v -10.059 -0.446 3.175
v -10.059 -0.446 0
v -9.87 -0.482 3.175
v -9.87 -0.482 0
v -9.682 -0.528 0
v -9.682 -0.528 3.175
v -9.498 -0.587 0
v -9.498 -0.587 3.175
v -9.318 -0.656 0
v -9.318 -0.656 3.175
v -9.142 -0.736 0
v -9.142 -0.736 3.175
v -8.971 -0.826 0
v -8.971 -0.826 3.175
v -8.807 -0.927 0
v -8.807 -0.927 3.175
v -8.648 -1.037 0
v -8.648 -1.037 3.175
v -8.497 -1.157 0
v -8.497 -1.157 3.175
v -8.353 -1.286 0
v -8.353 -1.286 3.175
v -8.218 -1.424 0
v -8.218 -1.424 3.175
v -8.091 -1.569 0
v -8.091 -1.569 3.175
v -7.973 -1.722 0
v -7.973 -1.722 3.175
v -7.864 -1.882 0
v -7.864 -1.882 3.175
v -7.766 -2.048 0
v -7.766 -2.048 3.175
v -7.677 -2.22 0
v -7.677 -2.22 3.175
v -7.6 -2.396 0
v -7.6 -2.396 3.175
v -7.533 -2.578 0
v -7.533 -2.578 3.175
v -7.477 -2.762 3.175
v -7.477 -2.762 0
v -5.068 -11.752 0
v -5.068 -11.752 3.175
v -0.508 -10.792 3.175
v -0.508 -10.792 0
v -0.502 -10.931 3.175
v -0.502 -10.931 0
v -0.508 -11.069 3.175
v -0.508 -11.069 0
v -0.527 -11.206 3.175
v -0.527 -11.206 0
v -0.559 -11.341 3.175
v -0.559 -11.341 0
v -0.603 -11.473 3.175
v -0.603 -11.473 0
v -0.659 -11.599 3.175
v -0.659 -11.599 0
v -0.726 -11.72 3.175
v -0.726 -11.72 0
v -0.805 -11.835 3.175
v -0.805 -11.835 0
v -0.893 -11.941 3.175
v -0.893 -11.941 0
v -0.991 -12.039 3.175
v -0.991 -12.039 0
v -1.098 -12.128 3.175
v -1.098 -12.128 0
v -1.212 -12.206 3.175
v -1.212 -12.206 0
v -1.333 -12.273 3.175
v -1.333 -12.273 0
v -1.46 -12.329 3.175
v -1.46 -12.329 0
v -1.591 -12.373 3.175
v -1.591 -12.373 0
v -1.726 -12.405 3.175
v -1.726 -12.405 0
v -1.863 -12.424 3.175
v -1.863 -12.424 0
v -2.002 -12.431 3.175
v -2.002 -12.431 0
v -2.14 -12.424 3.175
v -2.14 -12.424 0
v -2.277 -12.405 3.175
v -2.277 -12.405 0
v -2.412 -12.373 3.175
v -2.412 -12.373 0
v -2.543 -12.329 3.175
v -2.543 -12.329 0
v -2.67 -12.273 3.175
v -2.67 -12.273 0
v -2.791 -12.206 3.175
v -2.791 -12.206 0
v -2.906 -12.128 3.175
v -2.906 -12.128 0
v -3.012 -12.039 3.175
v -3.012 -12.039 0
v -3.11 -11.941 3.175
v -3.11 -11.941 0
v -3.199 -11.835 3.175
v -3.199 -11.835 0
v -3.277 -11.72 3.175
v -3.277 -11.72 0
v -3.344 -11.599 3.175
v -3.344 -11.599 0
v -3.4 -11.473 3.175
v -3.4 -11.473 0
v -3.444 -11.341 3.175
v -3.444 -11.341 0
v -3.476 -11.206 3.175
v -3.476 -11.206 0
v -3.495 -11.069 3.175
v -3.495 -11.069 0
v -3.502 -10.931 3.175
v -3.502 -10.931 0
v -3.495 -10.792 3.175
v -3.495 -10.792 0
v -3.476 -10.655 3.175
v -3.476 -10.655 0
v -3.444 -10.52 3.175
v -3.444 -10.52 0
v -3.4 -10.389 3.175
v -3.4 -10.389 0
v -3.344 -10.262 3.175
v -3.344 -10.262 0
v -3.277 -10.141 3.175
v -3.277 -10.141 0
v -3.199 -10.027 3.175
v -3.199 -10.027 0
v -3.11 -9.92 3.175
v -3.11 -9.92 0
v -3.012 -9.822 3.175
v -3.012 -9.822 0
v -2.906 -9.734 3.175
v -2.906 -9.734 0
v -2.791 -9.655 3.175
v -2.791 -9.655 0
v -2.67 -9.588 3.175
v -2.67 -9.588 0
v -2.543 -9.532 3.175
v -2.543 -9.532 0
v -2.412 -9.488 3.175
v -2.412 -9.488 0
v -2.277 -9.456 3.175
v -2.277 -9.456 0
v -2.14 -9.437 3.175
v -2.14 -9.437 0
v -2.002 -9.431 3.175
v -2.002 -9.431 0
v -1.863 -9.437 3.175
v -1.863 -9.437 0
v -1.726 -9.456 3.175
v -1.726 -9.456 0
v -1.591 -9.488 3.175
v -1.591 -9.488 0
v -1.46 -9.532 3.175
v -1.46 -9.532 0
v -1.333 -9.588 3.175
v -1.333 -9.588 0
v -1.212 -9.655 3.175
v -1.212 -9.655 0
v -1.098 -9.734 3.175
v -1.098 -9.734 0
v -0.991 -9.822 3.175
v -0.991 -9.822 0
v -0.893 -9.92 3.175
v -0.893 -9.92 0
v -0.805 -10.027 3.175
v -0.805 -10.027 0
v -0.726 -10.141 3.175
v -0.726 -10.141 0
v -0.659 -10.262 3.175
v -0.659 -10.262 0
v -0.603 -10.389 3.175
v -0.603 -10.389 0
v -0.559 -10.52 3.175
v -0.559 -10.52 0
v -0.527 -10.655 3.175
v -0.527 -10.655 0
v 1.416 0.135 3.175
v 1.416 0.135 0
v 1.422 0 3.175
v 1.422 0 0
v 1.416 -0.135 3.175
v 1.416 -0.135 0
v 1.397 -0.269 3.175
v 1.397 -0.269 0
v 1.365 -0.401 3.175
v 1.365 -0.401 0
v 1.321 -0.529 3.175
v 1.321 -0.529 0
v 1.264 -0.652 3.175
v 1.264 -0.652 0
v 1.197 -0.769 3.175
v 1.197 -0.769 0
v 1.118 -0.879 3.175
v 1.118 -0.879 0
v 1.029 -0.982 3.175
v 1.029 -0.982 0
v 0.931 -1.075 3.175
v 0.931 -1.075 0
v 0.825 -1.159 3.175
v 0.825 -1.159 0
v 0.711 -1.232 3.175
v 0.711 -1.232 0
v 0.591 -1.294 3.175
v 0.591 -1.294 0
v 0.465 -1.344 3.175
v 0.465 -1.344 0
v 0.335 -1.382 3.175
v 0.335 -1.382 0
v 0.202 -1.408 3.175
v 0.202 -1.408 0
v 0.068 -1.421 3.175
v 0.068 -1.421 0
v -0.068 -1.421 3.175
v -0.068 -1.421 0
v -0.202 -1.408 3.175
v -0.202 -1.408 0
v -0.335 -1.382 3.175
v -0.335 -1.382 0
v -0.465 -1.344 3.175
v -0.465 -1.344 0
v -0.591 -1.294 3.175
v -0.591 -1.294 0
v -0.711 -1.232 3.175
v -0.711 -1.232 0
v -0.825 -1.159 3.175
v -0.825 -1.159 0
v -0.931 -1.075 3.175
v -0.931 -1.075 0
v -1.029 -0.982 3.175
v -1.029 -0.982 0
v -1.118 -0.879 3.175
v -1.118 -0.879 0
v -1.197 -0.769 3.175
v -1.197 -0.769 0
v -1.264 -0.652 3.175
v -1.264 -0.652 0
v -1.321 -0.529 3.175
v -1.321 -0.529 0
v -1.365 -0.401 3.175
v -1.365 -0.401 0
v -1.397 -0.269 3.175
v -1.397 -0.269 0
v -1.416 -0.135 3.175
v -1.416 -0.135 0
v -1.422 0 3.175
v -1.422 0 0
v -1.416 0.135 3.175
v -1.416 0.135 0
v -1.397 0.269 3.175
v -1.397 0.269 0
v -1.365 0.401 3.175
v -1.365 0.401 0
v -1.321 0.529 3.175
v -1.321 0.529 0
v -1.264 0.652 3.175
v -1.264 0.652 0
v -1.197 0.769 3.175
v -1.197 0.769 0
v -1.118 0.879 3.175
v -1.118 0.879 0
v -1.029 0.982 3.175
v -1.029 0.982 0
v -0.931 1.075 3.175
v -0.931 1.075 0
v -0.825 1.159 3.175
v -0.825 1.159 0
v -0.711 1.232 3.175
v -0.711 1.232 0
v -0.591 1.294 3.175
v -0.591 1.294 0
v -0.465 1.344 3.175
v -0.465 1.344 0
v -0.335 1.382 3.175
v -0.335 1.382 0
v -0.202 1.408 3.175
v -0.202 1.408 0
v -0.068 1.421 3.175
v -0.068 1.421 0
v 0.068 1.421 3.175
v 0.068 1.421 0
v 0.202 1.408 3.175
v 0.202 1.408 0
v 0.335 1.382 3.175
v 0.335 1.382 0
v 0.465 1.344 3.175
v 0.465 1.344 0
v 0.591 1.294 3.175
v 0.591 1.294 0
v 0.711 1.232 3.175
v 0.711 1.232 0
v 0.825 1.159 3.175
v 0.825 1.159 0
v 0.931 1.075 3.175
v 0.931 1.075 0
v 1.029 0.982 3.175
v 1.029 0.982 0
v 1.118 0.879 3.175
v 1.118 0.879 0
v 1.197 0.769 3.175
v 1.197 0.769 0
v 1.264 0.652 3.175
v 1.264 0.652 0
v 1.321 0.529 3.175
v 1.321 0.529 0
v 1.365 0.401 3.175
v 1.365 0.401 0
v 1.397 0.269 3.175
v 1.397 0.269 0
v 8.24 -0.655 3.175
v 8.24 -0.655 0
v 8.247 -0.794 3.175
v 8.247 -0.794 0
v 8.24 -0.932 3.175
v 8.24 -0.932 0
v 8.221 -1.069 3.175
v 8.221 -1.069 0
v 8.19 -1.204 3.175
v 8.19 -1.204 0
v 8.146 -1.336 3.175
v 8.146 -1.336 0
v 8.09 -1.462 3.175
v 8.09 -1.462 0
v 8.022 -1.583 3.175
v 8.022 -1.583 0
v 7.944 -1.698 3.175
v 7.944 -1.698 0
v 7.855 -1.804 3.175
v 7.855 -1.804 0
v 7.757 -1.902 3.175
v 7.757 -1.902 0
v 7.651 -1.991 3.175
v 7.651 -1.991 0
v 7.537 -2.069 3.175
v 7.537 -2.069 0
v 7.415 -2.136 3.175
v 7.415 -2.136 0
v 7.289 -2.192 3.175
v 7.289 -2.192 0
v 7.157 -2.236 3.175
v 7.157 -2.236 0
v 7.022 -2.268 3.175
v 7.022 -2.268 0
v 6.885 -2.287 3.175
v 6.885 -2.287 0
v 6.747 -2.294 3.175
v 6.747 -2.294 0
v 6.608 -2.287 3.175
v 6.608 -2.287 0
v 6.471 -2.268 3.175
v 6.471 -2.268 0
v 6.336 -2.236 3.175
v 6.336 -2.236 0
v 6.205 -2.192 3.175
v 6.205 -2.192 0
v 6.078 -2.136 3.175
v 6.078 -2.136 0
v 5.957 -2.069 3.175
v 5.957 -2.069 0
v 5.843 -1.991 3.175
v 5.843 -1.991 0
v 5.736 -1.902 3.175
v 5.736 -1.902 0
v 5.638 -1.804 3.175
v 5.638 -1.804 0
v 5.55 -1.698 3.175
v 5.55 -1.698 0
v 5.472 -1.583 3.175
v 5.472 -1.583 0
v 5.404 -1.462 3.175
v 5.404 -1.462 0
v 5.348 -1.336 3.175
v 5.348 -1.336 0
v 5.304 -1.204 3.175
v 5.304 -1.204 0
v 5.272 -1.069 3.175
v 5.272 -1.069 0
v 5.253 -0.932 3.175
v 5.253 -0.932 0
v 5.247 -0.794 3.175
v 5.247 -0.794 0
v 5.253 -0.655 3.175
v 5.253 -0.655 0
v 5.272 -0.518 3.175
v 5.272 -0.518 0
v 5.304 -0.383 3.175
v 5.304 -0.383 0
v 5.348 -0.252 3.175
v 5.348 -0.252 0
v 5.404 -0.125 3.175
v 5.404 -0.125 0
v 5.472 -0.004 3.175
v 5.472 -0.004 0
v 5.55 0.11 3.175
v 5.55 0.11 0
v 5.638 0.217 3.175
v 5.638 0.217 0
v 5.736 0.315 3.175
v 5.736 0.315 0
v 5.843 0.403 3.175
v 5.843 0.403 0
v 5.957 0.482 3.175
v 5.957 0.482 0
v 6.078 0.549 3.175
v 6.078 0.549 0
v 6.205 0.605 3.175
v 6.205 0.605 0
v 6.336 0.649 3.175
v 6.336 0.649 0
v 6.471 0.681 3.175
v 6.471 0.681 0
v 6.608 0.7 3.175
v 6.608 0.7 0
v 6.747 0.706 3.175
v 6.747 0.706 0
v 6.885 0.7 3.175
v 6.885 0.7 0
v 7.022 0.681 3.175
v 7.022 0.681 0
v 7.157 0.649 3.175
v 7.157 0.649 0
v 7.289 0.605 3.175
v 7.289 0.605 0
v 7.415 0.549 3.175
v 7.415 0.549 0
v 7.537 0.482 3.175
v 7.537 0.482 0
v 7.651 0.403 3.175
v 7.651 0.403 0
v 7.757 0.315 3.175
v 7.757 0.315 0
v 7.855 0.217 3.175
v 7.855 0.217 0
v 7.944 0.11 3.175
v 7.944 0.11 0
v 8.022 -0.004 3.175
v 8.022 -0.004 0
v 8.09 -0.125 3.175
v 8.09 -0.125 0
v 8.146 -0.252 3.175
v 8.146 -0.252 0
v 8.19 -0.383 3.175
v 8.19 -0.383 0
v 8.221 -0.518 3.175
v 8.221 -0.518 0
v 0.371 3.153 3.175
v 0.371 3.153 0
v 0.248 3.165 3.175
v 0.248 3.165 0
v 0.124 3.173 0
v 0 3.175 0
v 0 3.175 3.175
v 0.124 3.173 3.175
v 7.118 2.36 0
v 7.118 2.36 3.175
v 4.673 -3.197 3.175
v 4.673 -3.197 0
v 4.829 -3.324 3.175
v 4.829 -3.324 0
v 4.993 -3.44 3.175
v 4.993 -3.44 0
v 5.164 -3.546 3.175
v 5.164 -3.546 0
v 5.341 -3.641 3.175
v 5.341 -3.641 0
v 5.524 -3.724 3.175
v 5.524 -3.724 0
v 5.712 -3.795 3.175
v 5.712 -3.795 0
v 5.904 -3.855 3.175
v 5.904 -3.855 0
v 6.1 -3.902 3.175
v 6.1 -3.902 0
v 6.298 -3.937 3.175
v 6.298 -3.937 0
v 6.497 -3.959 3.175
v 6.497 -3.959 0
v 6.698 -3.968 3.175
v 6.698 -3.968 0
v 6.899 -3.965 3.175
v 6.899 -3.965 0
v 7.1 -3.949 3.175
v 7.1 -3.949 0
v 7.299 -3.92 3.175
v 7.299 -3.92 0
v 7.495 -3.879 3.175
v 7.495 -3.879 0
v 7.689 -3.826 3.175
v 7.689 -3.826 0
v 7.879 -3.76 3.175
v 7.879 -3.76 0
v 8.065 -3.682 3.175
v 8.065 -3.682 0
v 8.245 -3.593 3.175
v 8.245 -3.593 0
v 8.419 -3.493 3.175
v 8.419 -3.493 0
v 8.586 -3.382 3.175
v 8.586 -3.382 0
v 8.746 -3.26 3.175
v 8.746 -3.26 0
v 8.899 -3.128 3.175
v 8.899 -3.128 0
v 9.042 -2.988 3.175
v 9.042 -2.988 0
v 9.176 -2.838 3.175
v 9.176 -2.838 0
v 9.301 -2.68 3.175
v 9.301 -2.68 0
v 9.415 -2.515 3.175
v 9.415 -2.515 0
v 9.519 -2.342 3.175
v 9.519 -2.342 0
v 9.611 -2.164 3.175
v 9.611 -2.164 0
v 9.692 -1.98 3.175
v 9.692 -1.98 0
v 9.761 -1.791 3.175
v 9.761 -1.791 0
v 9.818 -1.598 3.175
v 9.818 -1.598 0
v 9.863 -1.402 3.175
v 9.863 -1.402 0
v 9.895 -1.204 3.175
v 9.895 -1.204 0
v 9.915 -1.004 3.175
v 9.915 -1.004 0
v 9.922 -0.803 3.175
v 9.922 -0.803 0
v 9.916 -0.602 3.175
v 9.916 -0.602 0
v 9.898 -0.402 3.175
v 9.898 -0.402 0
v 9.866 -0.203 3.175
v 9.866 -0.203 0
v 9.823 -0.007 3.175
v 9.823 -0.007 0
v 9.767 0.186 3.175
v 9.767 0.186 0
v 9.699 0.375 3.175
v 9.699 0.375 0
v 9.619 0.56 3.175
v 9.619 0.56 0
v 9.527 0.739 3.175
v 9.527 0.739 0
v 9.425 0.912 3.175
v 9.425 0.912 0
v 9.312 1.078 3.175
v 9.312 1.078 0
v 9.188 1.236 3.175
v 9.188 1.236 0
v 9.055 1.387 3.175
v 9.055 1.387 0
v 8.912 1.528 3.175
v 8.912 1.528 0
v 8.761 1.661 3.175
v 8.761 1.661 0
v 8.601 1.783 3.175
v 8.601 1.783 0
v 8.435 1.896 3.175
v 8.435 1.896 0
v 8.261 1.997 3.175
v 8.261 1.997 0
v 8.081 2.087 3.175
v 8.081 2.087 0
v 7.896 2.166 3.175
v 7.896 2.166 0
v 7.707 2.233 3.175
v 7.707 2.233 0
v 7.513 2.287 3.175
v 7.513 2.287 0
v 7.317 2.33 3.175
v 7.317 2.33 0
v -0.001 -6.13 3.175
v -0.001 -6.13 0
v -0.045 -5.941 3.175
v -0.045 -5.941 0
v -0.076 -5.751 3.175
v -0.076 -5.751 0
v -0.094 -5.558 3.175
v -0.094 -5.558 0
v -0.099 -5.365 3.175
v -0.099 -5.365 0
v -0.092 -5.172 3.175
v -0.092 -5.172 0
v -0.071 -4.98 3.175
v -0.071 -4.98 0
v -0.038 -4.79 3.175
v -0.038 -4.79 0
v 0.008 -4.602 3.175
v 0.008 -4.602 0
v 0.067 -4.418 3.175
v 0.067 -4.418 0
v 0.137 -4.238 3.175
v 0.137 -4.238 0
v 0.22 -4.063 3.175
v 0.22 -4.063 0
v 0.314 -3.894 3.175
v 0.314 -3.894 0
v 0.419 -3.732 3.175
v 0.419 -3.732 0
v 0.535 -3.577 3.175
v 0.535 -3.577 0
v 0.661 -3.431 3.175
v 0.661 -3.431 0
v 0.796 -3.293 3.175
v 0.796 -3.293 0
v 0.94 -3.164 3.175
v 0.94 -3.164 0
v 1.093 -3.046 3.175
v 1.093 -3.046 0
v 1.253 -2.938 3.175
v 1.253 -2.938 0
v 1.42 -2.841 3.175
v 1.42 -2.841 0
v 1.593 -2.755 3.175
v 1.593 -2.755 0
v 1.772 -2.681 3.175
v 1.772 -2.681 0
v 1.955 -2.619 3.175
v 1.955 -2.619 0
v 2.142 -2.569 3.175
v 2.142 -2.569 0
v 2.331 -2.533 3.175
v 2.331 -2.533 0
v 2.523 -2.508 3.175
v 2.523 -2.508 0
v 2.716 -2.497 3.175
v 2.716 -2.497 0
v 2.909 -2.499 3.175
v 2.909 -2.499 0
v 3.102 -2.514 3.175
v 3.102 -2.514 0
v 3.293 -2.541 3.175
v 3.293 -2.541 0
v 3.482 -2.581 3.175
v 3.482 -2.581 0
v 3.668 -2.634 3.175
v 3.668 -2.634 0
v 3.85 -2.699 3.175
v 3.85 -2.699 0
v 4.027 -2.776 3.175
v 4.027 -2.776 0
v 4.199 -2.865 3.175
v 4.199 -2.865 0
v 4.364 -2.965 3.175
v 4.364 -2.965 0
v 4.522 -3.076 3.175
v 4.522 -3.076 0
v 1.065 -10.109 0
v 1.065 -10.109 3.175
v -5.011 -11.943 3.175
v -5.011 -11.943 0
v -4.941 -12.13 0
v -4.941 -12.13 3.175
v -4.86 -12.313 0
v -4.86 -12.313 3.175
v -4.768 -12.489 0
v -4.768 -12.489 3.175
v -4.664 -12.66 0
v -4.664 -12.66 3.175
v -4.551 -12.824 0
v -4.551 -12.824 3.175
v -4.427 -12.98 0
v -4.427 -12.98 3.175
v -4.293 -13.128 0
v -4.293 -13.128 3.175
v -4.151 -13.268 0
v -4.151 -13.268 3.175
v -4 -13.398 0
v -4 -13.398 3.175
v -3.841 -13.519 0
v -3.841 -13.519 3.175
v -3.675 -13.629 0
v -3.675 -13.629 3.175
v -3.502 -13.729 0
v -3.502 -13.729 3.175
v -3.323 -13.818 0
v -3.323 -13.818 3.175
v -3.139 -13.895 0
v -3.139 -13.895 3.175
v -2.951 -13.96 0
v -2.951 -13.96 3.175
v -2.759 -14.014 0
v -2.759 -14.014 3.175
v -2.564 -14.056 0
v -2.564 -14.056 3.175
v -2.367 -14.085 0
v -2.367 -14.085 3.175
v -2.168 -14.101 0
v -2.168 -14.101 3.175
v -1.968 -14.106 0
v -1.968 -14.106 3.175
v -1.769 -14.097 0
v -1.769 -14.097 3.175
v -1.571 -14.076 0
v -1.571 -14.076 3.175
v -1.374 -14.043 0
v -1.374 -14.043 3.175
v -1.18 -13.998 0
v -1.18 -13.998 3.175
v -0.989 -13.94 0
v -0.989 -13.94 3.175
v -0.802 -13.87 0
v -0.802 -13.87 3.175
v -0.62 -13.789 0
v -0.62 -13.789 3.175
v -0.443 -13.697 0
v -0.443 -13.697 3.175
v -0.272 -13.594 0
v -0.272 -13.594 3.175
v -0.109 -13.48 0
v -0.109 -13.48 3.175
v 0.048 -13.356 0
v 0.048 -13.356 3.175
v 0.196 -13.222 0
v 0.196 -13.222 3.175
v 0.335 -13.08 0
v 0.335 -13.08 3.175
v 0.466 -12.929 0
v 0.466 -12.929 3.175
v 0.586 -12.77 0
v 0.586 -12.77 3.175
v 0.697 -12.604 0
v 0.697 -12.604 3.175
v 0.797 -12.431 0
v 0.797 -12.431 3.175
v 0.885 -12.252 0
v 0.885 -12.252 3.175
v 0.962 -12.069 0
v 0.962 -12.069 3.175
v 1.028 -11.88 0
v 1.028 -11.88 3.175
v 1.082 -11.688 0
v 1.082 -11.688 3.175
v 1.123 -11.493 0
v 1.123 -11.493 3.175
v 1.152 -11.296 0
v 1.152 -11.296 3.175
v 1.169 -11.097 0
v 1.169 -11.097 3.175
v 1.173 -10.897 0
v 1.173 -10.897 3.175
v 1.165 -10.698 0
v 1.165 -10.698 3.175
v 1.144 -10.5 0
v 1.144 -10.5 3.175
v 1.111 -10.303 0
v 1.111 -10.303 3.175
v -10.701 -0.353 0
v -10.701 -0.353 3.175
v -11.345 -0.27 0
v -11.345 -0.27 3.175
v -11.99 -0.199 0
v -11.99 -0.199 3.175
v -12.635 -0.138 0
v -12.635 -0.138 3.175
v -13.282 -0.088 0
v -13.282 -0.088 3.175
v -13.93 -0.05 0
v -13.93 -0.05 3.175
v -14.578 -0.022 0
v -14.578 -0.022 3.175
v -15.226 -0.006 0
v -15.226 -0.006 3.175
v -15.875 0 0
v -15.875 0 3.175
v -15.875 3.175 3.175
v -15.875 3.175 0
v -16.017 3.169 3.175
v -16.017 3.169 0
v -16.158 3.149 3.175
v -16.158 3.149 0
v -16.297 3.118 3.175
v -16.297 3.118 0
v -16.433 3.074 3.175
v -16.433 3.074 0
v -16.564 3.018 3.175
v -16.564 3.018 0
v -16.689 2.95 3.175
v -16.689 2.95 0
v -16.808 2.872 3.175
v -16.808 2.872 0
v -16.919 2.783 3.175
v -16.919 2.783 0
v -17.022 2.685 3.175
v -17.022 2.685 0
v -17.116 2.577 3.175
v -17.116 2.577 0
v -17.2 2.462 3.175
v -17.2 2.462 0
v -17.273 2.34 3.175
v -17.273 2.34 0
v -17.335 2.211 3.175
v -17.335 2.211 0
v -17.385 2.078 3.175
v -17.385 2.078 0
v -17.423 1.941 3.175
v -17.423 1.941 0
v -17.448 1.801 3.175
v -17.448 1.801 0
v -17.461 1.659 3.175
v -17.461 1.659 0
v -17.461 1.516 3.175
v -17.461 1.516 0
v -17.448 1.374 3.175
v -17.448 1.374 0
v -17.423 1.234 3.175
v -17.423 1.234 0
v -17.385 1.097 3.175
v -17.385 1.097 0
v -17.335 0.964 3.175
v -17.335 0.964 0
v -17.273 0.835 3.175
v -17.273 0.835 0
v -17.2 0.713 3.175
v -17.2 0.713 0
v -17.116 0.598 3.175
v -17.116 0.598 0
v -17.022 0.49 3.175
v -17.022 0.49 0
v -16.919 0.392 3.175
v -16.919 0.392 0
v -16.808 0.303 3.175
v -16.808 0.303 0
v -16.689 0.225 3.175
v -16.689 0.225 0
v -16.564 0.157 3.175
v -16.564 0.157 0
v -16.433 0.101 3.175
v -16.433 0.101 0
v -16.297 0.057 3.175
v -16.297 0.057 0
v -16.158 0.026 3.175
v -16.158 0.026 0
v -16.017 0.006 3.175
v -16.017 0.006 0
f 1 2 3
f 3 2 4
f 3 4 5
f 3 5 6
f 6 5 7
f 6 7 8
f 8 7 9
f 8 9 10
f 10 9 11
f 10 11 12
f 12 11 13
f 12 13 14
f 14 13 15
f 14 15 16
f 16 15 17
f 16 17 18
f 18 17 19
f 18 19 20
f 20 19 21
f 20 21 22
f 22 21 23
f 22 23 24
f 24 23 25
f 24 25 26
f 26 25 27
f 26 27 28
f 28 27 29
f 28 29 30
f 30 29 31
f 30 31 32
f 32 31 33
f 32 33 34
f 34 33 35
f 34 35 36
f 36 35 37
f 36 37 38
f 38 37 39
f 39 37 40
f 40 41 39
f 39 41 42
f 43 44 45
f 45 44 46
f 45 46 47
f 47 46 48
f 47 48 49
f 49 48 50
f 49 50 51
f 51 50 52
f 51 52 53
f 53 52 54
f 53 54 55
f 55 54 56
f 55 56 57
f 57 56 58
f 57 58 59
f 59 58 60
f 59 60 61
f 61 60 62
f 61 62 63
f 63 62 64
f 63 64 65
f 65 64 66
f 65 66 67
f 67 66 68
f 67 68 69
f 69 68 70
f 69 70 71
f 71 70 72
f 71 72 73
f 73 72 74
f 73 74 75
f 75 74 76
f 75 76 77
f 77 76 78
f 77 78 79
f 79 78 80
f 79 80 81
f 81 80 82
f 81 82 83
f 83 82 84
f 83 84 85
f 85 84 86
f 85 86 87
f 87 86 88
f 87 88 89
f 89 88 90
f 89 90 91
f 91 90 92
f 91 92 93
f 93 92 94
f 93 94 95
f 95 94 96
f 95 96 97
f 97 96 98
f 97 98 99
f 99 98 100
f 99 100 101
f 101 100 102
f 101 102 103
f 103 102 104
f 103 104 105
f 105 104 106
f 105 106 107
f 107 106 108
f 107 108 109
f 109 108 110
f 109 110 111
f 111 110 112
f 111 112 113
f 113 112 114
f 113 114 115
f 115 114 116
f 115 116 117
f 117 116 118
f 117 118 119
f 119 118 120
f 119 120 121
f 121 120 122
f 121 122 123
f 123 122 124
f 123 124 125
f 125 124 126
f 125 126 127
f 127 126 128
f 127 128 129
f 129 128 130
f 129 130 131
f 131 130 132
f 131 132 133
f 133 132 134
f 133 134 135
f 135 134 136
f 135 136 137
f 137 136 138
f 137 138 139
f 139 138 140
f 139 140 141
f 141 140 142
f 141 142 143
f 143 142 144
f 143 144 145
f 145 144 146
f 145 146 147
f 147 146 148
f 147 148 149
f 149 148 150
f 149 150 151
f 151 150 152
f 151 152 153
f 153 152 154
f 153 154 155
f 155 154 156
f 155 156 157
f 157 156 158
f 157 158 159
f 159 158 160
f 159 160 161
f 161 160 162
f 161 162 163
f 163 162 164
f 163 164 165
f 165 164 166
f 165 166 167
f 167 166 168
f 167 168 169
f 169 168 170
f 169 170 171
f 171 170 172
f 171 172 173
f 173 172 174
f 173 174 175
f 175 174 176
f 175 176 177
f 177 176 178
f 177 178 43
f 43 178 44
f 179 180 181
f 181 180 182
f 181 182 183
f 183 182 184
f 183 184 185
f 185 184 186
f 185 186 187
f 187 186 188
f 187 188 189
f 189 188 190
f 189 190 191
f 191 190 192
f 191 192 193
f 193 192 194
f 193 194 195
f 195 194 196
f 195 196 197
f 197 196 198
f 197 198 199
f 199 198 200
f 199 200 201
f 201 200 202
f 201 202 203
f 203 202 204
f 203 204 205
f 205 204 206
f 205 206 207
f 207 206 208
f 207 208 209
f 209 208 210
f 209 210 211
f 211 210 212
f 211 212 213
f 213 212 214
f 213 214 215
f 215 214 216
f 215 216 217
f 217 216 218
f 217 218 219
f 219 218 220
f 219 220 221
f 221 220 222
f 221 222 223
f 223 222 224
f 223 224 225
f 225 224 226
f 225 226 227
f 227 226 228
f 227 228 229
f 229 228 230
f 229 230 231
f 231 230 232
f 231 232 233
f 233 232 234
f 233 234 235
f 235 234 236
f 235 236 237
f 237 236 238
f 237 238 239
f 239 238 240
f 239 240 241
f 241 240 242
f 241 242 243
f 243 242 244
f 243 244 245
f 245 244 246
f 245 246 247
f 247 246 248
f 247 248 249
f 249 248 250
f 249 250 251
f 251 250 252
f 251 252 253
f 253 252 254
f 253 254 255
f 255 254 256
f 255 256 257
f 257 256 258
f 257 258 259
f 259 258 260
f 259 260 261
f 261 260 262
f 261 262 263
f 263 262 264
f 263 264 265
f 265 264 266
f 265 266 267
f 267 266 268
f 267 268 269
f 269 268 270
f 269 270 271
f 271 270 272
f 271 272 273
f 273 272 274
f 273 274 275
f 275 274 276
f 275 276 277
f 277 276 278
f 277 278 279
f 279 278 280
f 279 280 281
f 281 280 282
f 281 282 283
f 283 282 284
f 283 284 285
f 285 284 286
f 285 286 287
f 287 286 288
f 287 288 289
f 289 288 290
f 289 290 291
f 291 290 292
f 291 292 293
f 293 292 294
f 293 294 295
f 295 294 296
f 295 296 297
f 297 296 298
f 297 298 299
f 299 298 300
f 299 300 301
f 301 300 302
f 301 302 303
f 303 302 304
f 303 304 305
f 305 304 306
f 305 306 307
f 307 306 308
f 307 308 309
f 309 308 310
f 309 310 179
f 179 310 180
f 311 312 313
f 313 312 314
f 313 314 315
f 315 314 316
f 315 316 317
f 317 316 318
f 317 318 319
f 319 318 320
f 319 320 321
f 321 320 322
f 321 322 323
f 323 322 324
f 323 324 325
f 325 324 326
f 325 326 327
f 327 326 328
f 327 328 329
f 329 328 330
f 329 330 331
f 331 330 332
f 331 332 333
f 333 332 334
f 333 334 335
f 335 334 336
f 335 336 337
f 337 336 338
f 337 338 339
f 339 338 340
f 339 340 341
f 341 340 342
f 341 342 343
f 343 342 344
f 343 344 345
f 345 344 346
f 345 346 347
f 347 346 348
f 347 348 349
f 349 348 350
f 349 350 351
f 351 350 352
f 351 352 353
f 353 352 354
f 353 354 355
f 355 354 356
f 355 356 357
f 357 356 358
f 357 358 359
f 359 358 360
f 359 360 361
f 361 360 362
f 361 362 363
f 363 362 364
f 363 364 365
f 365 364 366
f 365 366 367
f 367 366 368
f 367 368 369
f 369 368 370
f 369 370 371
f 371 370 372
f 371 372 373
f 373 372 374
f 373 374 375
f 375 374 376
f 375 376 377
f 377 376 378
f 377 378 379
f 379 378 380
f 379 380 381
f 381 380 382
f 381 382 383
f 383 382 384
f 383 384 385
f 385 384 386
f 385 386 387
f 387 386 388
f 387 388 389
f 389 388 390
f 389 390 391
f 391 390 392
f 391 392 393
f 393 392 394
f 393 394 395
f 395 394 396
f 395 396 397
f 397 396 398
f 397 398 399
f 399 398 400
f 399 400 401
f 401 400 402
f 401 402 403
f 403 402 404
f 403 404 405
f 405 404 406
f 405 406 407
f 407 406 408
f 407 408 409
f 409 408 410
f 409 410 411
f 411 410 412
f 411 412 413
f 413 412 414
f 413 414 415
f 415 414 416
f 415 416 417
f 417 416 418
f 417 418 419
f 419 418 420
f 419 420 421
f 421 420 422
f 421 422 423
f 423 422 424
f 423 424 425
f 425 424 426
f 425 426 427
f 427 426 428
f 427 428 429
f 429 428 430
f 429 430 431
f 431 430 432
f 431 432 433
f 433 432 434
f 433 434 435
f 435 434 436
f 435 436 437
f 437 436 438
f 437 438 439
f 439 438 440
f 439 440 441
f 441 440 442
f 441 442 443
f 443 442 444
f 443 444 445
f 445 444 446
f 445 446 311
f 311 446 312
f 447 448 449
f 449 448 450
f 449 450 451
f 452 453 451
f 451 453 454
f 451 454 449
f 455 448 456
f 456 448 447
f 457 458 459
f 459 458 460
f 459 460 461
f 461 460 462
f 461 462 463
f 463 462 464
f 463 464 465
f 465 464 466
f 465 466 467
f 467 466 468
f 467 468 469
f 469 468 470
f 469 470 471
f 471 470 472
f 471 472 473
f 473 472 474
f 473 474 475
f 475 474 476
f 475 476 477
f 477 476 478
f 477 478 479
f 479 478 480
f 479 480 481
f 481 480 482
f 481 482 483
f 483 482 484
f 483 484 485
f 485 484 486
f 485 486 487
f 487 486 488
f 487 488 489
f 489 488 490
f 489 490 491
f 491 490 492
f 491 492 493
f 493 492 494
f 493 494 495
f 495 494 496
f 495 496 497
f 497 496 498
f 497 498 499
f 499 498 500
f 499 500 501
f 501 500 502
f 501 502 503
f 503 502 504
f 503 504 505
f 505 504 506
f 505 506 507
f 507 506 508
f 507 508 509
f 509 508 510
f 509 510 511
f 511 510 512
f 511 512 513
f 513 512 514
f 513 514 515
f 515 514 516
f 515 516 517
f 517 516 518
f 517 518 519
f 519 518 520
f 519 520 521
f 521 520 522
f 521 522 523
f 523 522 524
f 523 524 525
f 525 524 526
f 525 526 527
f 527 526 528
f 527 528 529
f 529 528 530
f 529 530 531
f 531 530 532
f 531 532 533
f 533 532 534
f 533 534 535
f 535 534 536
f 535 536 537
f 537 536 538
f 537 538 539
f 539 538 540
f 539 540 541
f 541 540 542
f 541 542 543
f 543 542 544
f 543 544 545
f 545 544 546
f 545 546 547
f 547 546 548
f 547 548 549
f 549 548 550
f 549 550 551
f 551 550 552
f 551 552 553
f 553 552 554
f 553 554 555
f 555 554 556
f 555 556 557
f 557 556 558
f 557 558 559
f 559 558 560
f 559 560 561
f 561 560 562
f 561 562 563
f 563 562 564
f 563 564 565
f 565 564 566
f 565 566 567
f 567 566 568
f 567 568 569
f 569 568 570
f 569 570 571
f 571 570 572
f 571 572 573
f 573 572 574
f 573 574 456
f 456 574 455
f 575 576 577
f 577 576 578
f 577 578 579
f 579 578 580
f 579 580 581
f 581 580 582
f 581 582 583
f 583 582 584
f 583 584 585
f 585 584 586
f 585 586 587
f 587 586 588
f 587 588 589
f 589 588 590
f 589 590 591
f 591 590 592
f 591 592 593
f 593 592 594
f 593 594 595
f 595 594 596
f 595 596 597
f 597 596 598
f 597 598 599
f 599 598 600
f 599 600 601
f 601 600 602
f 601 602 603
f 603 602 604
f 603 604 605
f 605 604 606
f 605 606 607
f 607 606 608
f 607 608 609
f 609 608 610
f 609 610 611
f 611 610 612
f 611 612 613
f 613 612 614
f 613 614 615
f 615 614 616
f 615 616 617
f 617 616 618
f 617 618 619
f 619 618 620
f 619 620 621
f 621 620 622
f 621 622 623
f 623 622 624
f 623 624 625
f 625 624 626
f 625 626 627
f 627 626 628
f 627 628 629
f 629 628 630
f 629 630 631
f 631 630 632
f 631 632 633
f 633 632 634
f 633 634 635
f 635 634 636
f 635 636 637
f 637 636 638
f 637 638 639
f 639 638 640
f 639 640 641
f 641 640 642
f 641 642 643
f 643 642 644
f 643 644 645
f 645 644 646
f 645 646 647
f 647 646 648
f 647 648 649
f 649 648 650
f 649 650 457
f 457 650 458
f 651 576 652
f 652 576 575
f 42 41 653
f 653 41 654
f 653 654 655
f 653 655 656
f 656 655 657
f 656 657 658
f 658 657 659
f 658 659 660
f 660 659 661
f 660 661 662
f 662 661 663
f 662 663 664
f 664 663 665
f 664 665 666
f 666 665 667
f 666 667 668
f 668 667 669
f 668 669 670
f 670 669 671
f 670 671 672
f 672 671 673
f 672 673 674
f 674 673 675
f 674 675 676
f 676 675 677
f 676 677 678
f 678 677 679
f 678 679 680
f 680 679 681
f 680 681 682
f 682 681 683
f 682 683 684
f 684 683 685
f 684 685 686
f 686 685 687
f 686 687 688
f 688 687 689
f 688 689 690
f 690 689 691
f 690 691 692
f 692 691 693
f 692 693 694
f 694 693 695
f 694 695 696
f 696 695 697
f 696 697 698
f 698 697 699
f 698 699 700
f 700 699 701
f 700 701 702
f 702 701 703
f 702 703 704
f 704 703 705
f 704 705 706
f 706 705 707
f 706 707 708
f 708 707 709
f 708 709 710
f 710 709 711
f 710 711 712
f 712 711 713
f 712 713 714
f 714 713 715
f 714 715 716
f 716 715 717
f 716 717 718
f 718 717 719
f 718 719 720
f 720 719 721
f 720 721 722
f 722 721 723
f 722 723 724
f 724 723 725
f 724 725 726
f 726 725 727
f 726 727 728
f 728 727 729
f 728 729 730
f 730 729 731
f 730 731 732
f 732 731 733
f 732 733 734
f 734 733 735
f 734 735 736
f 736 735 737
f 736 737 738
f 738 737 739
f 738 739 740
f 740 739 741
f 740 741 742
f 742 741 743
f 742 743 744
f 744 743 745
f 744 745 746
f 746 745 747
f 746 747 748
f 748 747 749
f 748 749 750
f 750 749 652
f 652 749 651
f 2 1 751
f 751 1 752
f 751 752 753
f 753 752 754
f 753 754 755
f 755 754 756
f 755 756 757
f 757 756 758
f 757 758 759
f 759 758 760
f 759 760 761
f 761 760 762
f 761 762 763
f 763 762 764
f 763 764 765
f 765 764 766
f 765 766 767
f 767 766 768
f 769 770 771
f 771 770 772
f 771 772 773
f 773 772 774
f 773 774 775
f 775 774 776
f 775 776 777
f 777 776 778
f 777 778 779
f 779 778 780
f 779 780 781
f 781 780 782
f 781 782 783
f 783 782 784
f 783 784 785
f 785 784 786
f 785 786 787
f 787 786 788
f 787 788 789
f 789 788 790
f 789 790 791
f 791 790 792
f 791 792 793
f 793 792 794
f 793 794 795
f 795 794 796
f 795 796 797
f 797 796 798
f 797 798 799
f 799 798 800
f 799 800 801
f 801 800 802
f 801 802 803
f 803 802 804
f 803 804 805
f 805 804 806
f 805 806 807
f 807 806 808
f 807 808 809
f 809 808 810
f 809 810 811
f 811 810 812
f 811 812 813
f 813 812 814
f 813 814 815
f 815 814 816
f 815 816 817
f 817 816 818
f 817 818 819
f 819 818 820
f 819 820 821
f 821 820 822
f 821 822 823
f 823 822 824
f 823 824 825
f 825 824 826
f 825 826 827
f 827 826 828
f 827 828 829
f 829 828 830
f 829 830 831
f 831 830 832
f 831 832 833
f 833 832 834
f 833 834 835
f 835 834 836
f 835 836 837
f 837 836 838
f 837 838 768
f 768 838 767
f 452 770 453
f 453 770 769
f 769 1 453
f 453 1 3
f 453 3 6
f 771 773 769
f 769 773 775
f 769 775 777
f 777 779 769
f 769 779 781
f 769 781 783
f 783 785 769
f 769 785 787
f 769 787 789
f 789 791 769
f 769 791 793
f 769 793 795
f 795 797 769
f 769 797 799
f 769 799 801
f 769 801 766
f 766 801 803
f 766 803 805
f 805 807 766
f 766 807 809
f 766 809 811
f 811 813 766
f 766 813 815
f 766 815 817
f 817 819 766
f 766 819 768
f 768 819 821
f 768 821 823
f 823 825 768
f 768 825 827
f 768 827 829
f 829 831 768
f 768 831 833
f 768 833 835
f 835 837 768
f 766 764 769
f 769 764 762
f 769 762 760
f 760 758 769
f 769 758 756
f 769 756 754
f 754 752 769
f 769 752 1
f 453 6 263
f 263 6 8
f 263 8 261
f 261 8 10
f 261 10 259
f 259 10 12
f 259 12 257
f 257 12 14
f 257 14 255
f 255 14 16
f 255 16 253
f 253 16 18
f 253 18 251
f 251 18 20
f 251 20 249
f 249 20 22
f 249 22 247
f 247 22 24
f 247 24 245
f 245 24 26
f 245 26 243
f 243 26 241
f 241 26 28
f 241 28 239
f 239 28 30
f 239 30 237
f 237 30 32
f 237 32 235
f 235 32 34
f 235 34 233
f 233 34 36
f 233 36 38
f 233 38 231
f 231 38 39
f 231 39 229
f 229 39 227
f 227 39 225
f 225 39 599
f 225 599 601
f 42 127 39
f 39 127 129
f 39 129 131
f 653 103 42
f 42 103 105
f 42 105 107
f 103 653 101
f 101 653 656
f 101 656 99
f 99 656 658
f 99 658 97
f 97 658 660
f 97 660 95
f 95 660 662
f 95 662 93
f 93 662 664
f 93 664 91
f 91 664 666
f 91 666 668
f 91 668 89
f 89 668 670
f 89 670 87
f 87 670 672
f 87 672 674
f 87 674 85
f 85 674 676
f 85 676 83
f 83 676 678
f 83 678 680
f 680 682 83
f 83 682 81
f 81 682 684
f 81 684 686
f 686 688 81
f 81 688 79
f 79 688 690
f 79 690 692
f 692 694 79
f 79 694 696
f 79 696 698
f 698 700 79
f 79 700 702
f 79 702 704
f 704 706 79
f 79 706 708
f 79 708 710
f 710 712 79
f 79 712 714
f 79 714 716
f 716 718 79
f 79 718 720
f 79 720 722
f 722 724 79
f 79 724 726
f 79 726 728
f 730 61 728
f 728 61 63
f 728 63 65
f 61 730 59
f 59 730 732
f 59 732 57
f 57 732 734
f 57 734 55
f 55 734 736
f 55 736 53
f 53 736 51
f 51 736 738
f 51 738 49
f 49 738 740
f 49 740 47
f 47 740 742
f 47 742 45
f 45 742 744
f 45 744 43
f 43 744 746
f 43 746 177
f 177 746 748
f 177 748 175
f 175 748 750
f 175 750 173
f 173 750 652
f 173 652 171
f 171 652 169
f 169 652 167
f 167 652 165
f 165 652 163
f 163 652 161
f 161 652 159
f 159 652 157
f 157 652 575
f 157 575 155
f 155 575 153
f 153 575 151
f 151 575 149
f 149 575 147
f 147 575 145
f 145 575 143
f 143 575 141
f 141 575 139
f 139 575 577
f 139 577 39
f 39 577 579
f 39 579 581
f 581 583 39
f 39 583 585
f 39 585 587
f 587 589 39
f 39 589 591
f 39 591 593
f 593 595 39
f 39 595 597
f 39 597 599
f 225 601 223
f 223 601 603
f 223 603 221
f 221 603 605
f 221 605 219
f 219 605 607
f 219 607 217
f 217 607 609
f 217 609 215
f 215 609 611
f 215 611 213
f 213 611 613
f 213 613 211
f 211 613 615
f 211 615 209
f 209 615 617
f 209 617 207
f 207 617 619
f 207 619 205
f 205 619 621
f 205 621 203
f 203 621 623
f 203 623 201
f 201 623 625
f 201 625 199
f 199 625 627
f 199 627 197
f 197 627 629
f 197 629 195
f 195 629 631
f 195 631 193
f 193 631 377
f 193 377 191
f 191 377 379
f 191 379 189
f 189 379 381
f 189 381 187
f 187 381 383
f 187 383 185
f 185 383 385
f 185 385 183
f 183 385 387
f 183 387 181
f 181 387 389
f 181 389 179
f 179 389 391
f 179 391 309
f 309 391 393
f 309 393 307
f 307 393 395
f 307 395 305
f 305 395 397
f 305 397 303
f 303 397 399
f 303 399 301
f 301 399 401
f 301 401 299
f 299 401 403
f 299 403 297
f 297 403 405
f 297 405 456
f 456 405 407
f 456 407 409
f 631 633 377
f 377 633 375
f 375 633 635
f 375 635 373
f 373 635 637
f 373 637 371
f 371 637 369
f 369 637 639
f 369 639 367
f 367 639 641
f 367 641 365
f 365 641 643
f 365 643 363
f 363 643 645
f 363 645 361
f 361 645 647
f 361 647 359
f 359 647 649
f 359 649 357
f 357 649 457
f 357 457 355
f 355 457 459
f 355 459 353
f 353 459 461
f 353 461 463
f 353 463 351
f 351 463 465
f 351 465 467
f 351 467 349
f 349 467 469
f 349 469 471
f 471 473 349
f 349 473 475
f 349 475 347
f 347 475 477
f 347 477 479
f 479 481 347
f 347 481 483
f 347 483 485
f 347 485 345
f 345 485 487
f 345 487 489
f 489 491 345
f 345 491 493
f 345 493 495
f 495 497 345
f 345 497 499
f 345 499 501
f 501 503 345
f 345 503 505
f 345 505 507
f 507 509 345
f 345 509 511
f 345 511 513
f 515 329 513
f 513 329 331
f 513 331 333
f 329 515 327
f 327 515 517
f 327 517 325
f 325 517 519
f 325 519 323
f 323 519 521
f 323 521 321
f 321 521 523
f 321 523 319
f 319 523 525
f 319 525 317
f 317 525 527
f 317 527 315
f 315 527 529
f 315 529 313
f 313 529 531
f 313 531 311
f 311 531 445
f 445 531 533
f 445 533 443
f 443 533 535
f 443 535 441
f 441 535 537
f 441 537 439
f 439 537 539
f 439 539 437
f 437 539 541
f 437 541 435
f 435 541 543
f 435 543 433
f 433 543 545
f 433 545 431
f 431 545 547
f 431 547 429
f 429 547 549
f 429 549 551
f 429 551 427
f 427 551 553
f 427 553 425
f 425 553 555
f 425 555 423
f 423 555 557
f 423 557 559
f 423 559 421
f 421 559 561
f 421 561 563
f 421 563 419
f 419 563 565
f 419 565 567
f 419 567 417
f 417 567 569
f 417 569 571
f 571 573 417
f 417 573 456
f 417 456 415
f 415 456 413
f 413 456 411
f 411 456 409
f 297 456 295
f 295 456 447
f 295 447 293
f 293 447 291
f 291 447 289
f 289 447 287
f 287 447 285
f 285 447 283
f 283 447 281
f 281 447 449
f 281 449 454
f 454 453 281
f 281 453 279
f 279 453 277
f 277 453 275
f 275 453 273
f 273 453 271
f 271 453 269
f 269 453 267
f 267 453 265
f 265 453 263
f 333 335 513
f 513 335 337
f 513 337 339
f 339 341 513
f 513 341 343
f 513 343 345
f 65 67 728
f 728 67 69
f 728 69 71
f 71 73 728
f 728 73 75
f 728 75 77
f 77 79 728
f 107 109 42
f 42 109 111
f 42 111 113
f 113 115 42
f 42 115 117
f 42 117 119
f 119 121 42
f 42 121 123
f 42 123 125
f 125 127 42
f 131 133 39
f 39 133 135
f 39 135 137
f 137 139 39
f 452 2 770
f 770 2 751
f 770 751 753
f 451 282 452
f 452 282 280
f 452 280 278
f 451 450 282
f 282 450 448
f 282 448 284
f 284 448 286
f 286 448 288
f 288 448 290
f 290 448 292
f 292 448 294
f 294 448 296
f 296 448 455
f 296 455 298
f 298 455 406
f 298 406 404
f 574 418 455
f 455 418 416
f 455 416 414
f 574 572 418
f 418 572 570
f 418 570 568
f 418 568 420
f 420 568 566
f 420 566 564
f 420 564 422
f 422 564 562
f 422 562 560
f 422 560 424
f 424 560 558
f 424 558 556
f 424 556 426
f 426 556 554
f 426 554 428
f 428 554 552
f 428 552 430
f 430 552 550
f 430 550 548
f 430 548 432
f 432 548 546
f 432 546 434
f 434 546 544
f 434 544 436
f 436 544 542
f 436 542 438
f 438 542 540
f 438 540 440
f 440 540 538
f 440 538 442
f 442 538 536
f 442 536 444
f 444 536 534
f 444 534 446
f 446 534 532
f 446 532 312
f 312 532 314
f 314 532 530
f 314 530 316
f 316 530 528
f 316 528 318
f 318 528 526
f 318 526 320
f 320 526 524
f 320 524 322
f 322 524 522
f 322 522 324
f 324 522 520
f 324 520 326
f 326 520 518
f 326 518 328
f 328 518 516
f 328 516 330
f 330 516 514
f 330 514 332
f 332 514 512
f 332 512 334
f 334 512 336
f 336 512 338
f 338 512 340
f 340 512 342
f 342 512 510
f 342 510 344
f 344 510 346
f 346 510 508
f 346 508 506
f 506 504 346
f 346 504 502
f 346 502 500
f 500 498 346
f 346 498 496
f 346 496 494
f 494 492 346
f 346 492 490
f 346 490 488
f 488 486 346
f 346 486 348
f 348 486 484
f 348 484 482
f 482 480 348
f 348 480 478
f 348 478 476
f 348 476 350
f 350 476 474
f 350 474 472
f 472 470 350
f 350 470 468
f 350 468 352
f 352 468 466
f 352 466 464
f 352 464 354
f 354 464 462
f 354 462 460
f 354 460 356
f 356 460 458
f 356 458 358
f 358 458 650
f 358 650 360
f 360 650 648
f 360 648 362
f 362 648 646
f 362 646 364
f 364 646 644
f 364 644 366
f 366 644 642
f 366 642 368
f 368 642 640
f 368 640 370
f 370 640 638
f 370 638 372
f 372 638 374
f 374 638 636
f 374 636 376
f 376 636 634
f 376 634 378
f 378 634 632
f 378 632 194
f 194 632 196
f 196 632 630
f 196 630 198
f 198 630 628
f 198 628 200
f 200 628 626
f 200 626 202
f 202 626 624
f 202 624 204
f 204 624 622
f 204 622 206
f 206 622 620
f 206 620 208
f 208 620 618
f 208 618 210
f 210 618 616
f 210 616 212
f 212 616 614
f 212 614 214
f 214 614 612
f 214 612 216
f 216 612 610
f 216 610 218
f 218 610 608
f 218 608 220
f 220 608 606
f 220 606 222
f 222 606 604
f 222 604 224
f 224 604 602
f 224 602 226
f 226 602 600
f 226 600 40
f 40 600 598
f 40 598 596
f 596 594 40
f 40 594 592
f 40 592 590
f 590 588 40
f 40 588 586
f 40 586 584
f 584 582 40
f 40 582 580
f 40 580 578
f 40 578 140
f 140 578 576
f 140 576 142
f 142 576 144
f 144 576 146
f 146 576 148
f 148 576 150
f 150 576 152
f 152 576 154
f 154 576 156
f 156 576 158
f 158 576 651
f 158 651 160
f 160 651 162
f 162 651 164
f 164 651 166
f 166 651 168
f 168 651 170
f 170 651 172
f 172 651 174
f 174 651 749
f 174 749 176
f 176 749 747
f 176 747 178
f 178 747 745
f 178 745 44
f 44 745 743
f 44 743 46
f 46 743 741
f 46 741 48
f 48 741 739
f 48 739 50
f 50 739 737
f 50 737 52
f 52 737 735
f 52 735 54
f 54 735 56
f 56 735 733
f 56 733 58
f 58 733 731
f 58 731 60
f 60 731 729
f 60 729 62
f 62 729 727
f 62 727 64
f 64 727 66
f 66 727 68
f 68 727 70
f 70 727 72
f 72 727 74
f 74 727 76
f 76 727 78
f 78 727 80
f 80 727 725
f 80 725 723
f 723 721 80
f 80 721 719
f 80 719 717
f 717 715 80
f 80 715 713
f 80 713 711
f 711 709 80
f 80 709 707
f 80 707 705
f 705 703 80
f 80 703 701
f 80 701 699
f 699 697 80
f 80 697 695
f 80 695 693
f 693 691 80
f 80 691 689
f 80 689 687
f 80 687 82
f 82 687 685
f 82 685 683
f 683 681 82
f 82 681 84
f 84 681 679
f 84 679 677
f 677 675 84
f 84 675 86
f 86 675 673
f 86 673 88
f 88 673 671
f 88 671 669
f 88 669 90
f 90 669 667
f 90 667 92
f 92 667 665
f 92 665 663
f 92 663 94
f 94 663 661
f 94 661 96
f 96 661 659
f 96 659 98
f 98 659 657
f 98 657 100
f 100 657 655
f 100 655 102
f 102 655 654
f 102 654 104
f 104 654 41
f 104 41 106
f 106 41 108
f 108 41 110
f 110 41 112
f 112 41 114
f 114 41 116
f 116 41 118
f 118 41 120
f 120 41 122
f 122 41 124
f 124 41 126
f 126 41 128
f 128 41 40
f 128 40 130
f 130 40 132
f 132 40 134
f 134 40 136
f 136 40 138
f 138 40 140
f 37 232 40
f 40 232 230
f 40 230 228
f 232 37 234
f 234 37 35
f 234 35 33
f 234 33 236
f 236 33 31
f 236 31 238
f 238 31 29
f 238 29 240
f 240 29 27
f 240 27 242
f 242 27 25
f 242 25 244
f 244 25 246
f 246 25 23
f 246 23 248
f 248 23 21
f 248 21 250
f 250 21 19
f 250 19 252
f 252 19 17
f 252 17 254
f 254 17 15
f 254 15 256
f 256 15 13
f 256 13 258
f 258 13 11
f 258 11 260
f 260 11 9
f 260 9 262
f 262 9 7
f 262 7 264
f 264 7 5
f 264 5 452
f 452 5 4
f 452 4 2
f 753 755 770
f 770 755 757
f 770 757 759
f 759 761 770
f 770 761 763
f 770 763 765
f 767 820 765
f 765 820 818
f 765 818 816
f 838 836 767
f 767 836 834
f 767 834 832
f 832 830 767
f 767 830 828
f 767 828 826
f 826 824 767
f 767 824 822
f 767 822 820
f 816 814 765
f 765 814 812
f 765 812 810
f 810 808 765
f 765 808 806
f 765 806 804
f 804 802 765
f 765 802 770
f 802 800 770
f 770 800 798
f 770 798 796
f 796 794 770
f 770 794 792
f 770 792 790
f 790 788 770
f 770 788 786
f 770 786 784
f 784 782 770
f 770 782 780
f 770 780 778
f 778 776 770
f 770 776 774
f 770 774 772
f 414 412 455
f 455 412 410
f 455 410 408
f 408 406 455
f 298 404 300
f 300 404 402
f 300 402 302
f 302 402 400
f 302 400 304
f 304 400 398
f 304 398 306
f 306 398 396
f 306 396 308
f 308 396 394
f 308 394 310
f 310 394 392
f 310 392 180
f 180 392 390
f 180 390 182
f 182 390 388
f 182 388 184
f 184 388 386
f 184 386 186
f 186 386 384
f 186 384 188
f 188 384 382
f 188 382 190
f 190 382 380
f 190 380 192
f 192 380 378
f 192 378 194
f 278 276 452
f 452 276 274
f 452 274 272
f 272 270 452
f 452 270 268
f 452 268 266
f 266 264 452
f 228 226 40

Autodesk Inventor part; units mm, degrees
ref_plane "YZ Plane" through (0, 0, 0) normal (1, 0, 0) x (0, 1, 0)
ref_plane "XZ Plane" through (0, 0, 0) normal (0, 1, 0) x (-1, 0, 0)
ref_plane "XY Plane" through (0, 0, 0) normal (0, 0, 1) x (1, 0, 0)
sketch "Sketch1" plane through (0, 0, 0) normal (0, 0, 1) x (1, 0, 0)
  circle A0 centre (0, 0) radius 1.4224
  circle A1 centre (0, 0) radius 3.175
  line L0 (0, 0) -> (-15.875, 0) construction
  circle A2 centre (-2.0016, -10.9307) radius 3.175
  circle A3 centre (-2.0016, -10.9307) radius 5 construction
  circle A4 centre (-2.0016, -10.9307) radius 1.5
  line L1 (0, 0) -> (-2.0016, -10.9307) construction
  line L2 (-2.0016, -10.9307) -> (-3.4771, -10.6606) construction
  line L3 (0, 0) -> (-2.0016, -10.9307) construction
  arc A5 (-5.0684, -10.109) -> (1.0652, -11.7525) centre (-2.0016, -10.9307) ccw
  arc A6 (-1.2212, -2.9308) -> (-15.875, 0) centre (-15.875, -38.1) ccw
  arc A7 (-15.875, 3.175) -> (-15.875, 0) centre (-15.875, 1.5875) ccw
  line L4 (-15.875, 3.175) -> (0, 3.175)
  line L5 (-2.0016, -10.9307) -> (-4.9305, 0) construction
  line L6 (1.0652, -10.109) -> (-1.8637, 0.8218)
  line L7 (-7.9973, -0.8218) -> (-5.0684, -11.7525)
  arc A8 (-5.0684, -11.7525) -> (1.0652, -10.109) centre (-2.0016, -10.9307) ccw
  arc A9 (-1.8637, 0.8218) -> (-7.9973, -0.8218) centre (-4.9305, 0) ccw
  circle A10 centre (6.7469, -0.7937) radius 3.175
  circle A11 centre (6.7469, -0.7937) radius 1.5
  line L8 (7.1178, 2.3595) -> (0.371, 3.1533)
  arc A12 (4.6726, -3.1975) -> (-0.0011, -6.1296) centre (2.7869, -5.3826) ccw
  circle A13 centre (6.7469, -0.7937) radius 5 construction
  point P0 (-5.0684, -10.109)
  point P1 (0, 3.175)
  point P2 (-7.9969, -0.8234)
  point P3 (1.0652, -10.109)
  point P4 (-0.8218, -3.0668)
  point P5 (-2.4653, 2.0008)
  point P6 (0.6312, -3.1116)
  point P7 (1.4598, -2.8195)
  point P8 (-1.4243, -1.0642)
  point P9 (-1.7024, 0.5129)
  point P10 (1.0652, -10.109)
  point P11 (-5.0684, -11.7525)
  dimension "d24" = 3
  dimension "d0" = 2.8448
  dimension "d1" = 6.35
  dimension "d9" = 15.875
  dimension "d22" = 6.35
  dimension "d23" = 10
  dimension "Arm_Length" = 11.1125
  dimension "d29" = 3.175
  dimension "d30" = 6.35
  dimension "d31" = 6.35
  dimension "d32" = 3
  dimension "d36" = 10
  dimension "Arm_Angle" = 105
  dimension "d38" = 4.7625
  dimension "d39" = 6.7469
  dimension "d40" = 0.7937
extrude "Extrusion1" add sketch "Sketch1" along normal blind 3.175
fillet "Fillet1" radius 3.175 1 edges at (-7.9969, -0.8234, 1.5875)
properties part number "Lever" material "Aluminum 6061"
